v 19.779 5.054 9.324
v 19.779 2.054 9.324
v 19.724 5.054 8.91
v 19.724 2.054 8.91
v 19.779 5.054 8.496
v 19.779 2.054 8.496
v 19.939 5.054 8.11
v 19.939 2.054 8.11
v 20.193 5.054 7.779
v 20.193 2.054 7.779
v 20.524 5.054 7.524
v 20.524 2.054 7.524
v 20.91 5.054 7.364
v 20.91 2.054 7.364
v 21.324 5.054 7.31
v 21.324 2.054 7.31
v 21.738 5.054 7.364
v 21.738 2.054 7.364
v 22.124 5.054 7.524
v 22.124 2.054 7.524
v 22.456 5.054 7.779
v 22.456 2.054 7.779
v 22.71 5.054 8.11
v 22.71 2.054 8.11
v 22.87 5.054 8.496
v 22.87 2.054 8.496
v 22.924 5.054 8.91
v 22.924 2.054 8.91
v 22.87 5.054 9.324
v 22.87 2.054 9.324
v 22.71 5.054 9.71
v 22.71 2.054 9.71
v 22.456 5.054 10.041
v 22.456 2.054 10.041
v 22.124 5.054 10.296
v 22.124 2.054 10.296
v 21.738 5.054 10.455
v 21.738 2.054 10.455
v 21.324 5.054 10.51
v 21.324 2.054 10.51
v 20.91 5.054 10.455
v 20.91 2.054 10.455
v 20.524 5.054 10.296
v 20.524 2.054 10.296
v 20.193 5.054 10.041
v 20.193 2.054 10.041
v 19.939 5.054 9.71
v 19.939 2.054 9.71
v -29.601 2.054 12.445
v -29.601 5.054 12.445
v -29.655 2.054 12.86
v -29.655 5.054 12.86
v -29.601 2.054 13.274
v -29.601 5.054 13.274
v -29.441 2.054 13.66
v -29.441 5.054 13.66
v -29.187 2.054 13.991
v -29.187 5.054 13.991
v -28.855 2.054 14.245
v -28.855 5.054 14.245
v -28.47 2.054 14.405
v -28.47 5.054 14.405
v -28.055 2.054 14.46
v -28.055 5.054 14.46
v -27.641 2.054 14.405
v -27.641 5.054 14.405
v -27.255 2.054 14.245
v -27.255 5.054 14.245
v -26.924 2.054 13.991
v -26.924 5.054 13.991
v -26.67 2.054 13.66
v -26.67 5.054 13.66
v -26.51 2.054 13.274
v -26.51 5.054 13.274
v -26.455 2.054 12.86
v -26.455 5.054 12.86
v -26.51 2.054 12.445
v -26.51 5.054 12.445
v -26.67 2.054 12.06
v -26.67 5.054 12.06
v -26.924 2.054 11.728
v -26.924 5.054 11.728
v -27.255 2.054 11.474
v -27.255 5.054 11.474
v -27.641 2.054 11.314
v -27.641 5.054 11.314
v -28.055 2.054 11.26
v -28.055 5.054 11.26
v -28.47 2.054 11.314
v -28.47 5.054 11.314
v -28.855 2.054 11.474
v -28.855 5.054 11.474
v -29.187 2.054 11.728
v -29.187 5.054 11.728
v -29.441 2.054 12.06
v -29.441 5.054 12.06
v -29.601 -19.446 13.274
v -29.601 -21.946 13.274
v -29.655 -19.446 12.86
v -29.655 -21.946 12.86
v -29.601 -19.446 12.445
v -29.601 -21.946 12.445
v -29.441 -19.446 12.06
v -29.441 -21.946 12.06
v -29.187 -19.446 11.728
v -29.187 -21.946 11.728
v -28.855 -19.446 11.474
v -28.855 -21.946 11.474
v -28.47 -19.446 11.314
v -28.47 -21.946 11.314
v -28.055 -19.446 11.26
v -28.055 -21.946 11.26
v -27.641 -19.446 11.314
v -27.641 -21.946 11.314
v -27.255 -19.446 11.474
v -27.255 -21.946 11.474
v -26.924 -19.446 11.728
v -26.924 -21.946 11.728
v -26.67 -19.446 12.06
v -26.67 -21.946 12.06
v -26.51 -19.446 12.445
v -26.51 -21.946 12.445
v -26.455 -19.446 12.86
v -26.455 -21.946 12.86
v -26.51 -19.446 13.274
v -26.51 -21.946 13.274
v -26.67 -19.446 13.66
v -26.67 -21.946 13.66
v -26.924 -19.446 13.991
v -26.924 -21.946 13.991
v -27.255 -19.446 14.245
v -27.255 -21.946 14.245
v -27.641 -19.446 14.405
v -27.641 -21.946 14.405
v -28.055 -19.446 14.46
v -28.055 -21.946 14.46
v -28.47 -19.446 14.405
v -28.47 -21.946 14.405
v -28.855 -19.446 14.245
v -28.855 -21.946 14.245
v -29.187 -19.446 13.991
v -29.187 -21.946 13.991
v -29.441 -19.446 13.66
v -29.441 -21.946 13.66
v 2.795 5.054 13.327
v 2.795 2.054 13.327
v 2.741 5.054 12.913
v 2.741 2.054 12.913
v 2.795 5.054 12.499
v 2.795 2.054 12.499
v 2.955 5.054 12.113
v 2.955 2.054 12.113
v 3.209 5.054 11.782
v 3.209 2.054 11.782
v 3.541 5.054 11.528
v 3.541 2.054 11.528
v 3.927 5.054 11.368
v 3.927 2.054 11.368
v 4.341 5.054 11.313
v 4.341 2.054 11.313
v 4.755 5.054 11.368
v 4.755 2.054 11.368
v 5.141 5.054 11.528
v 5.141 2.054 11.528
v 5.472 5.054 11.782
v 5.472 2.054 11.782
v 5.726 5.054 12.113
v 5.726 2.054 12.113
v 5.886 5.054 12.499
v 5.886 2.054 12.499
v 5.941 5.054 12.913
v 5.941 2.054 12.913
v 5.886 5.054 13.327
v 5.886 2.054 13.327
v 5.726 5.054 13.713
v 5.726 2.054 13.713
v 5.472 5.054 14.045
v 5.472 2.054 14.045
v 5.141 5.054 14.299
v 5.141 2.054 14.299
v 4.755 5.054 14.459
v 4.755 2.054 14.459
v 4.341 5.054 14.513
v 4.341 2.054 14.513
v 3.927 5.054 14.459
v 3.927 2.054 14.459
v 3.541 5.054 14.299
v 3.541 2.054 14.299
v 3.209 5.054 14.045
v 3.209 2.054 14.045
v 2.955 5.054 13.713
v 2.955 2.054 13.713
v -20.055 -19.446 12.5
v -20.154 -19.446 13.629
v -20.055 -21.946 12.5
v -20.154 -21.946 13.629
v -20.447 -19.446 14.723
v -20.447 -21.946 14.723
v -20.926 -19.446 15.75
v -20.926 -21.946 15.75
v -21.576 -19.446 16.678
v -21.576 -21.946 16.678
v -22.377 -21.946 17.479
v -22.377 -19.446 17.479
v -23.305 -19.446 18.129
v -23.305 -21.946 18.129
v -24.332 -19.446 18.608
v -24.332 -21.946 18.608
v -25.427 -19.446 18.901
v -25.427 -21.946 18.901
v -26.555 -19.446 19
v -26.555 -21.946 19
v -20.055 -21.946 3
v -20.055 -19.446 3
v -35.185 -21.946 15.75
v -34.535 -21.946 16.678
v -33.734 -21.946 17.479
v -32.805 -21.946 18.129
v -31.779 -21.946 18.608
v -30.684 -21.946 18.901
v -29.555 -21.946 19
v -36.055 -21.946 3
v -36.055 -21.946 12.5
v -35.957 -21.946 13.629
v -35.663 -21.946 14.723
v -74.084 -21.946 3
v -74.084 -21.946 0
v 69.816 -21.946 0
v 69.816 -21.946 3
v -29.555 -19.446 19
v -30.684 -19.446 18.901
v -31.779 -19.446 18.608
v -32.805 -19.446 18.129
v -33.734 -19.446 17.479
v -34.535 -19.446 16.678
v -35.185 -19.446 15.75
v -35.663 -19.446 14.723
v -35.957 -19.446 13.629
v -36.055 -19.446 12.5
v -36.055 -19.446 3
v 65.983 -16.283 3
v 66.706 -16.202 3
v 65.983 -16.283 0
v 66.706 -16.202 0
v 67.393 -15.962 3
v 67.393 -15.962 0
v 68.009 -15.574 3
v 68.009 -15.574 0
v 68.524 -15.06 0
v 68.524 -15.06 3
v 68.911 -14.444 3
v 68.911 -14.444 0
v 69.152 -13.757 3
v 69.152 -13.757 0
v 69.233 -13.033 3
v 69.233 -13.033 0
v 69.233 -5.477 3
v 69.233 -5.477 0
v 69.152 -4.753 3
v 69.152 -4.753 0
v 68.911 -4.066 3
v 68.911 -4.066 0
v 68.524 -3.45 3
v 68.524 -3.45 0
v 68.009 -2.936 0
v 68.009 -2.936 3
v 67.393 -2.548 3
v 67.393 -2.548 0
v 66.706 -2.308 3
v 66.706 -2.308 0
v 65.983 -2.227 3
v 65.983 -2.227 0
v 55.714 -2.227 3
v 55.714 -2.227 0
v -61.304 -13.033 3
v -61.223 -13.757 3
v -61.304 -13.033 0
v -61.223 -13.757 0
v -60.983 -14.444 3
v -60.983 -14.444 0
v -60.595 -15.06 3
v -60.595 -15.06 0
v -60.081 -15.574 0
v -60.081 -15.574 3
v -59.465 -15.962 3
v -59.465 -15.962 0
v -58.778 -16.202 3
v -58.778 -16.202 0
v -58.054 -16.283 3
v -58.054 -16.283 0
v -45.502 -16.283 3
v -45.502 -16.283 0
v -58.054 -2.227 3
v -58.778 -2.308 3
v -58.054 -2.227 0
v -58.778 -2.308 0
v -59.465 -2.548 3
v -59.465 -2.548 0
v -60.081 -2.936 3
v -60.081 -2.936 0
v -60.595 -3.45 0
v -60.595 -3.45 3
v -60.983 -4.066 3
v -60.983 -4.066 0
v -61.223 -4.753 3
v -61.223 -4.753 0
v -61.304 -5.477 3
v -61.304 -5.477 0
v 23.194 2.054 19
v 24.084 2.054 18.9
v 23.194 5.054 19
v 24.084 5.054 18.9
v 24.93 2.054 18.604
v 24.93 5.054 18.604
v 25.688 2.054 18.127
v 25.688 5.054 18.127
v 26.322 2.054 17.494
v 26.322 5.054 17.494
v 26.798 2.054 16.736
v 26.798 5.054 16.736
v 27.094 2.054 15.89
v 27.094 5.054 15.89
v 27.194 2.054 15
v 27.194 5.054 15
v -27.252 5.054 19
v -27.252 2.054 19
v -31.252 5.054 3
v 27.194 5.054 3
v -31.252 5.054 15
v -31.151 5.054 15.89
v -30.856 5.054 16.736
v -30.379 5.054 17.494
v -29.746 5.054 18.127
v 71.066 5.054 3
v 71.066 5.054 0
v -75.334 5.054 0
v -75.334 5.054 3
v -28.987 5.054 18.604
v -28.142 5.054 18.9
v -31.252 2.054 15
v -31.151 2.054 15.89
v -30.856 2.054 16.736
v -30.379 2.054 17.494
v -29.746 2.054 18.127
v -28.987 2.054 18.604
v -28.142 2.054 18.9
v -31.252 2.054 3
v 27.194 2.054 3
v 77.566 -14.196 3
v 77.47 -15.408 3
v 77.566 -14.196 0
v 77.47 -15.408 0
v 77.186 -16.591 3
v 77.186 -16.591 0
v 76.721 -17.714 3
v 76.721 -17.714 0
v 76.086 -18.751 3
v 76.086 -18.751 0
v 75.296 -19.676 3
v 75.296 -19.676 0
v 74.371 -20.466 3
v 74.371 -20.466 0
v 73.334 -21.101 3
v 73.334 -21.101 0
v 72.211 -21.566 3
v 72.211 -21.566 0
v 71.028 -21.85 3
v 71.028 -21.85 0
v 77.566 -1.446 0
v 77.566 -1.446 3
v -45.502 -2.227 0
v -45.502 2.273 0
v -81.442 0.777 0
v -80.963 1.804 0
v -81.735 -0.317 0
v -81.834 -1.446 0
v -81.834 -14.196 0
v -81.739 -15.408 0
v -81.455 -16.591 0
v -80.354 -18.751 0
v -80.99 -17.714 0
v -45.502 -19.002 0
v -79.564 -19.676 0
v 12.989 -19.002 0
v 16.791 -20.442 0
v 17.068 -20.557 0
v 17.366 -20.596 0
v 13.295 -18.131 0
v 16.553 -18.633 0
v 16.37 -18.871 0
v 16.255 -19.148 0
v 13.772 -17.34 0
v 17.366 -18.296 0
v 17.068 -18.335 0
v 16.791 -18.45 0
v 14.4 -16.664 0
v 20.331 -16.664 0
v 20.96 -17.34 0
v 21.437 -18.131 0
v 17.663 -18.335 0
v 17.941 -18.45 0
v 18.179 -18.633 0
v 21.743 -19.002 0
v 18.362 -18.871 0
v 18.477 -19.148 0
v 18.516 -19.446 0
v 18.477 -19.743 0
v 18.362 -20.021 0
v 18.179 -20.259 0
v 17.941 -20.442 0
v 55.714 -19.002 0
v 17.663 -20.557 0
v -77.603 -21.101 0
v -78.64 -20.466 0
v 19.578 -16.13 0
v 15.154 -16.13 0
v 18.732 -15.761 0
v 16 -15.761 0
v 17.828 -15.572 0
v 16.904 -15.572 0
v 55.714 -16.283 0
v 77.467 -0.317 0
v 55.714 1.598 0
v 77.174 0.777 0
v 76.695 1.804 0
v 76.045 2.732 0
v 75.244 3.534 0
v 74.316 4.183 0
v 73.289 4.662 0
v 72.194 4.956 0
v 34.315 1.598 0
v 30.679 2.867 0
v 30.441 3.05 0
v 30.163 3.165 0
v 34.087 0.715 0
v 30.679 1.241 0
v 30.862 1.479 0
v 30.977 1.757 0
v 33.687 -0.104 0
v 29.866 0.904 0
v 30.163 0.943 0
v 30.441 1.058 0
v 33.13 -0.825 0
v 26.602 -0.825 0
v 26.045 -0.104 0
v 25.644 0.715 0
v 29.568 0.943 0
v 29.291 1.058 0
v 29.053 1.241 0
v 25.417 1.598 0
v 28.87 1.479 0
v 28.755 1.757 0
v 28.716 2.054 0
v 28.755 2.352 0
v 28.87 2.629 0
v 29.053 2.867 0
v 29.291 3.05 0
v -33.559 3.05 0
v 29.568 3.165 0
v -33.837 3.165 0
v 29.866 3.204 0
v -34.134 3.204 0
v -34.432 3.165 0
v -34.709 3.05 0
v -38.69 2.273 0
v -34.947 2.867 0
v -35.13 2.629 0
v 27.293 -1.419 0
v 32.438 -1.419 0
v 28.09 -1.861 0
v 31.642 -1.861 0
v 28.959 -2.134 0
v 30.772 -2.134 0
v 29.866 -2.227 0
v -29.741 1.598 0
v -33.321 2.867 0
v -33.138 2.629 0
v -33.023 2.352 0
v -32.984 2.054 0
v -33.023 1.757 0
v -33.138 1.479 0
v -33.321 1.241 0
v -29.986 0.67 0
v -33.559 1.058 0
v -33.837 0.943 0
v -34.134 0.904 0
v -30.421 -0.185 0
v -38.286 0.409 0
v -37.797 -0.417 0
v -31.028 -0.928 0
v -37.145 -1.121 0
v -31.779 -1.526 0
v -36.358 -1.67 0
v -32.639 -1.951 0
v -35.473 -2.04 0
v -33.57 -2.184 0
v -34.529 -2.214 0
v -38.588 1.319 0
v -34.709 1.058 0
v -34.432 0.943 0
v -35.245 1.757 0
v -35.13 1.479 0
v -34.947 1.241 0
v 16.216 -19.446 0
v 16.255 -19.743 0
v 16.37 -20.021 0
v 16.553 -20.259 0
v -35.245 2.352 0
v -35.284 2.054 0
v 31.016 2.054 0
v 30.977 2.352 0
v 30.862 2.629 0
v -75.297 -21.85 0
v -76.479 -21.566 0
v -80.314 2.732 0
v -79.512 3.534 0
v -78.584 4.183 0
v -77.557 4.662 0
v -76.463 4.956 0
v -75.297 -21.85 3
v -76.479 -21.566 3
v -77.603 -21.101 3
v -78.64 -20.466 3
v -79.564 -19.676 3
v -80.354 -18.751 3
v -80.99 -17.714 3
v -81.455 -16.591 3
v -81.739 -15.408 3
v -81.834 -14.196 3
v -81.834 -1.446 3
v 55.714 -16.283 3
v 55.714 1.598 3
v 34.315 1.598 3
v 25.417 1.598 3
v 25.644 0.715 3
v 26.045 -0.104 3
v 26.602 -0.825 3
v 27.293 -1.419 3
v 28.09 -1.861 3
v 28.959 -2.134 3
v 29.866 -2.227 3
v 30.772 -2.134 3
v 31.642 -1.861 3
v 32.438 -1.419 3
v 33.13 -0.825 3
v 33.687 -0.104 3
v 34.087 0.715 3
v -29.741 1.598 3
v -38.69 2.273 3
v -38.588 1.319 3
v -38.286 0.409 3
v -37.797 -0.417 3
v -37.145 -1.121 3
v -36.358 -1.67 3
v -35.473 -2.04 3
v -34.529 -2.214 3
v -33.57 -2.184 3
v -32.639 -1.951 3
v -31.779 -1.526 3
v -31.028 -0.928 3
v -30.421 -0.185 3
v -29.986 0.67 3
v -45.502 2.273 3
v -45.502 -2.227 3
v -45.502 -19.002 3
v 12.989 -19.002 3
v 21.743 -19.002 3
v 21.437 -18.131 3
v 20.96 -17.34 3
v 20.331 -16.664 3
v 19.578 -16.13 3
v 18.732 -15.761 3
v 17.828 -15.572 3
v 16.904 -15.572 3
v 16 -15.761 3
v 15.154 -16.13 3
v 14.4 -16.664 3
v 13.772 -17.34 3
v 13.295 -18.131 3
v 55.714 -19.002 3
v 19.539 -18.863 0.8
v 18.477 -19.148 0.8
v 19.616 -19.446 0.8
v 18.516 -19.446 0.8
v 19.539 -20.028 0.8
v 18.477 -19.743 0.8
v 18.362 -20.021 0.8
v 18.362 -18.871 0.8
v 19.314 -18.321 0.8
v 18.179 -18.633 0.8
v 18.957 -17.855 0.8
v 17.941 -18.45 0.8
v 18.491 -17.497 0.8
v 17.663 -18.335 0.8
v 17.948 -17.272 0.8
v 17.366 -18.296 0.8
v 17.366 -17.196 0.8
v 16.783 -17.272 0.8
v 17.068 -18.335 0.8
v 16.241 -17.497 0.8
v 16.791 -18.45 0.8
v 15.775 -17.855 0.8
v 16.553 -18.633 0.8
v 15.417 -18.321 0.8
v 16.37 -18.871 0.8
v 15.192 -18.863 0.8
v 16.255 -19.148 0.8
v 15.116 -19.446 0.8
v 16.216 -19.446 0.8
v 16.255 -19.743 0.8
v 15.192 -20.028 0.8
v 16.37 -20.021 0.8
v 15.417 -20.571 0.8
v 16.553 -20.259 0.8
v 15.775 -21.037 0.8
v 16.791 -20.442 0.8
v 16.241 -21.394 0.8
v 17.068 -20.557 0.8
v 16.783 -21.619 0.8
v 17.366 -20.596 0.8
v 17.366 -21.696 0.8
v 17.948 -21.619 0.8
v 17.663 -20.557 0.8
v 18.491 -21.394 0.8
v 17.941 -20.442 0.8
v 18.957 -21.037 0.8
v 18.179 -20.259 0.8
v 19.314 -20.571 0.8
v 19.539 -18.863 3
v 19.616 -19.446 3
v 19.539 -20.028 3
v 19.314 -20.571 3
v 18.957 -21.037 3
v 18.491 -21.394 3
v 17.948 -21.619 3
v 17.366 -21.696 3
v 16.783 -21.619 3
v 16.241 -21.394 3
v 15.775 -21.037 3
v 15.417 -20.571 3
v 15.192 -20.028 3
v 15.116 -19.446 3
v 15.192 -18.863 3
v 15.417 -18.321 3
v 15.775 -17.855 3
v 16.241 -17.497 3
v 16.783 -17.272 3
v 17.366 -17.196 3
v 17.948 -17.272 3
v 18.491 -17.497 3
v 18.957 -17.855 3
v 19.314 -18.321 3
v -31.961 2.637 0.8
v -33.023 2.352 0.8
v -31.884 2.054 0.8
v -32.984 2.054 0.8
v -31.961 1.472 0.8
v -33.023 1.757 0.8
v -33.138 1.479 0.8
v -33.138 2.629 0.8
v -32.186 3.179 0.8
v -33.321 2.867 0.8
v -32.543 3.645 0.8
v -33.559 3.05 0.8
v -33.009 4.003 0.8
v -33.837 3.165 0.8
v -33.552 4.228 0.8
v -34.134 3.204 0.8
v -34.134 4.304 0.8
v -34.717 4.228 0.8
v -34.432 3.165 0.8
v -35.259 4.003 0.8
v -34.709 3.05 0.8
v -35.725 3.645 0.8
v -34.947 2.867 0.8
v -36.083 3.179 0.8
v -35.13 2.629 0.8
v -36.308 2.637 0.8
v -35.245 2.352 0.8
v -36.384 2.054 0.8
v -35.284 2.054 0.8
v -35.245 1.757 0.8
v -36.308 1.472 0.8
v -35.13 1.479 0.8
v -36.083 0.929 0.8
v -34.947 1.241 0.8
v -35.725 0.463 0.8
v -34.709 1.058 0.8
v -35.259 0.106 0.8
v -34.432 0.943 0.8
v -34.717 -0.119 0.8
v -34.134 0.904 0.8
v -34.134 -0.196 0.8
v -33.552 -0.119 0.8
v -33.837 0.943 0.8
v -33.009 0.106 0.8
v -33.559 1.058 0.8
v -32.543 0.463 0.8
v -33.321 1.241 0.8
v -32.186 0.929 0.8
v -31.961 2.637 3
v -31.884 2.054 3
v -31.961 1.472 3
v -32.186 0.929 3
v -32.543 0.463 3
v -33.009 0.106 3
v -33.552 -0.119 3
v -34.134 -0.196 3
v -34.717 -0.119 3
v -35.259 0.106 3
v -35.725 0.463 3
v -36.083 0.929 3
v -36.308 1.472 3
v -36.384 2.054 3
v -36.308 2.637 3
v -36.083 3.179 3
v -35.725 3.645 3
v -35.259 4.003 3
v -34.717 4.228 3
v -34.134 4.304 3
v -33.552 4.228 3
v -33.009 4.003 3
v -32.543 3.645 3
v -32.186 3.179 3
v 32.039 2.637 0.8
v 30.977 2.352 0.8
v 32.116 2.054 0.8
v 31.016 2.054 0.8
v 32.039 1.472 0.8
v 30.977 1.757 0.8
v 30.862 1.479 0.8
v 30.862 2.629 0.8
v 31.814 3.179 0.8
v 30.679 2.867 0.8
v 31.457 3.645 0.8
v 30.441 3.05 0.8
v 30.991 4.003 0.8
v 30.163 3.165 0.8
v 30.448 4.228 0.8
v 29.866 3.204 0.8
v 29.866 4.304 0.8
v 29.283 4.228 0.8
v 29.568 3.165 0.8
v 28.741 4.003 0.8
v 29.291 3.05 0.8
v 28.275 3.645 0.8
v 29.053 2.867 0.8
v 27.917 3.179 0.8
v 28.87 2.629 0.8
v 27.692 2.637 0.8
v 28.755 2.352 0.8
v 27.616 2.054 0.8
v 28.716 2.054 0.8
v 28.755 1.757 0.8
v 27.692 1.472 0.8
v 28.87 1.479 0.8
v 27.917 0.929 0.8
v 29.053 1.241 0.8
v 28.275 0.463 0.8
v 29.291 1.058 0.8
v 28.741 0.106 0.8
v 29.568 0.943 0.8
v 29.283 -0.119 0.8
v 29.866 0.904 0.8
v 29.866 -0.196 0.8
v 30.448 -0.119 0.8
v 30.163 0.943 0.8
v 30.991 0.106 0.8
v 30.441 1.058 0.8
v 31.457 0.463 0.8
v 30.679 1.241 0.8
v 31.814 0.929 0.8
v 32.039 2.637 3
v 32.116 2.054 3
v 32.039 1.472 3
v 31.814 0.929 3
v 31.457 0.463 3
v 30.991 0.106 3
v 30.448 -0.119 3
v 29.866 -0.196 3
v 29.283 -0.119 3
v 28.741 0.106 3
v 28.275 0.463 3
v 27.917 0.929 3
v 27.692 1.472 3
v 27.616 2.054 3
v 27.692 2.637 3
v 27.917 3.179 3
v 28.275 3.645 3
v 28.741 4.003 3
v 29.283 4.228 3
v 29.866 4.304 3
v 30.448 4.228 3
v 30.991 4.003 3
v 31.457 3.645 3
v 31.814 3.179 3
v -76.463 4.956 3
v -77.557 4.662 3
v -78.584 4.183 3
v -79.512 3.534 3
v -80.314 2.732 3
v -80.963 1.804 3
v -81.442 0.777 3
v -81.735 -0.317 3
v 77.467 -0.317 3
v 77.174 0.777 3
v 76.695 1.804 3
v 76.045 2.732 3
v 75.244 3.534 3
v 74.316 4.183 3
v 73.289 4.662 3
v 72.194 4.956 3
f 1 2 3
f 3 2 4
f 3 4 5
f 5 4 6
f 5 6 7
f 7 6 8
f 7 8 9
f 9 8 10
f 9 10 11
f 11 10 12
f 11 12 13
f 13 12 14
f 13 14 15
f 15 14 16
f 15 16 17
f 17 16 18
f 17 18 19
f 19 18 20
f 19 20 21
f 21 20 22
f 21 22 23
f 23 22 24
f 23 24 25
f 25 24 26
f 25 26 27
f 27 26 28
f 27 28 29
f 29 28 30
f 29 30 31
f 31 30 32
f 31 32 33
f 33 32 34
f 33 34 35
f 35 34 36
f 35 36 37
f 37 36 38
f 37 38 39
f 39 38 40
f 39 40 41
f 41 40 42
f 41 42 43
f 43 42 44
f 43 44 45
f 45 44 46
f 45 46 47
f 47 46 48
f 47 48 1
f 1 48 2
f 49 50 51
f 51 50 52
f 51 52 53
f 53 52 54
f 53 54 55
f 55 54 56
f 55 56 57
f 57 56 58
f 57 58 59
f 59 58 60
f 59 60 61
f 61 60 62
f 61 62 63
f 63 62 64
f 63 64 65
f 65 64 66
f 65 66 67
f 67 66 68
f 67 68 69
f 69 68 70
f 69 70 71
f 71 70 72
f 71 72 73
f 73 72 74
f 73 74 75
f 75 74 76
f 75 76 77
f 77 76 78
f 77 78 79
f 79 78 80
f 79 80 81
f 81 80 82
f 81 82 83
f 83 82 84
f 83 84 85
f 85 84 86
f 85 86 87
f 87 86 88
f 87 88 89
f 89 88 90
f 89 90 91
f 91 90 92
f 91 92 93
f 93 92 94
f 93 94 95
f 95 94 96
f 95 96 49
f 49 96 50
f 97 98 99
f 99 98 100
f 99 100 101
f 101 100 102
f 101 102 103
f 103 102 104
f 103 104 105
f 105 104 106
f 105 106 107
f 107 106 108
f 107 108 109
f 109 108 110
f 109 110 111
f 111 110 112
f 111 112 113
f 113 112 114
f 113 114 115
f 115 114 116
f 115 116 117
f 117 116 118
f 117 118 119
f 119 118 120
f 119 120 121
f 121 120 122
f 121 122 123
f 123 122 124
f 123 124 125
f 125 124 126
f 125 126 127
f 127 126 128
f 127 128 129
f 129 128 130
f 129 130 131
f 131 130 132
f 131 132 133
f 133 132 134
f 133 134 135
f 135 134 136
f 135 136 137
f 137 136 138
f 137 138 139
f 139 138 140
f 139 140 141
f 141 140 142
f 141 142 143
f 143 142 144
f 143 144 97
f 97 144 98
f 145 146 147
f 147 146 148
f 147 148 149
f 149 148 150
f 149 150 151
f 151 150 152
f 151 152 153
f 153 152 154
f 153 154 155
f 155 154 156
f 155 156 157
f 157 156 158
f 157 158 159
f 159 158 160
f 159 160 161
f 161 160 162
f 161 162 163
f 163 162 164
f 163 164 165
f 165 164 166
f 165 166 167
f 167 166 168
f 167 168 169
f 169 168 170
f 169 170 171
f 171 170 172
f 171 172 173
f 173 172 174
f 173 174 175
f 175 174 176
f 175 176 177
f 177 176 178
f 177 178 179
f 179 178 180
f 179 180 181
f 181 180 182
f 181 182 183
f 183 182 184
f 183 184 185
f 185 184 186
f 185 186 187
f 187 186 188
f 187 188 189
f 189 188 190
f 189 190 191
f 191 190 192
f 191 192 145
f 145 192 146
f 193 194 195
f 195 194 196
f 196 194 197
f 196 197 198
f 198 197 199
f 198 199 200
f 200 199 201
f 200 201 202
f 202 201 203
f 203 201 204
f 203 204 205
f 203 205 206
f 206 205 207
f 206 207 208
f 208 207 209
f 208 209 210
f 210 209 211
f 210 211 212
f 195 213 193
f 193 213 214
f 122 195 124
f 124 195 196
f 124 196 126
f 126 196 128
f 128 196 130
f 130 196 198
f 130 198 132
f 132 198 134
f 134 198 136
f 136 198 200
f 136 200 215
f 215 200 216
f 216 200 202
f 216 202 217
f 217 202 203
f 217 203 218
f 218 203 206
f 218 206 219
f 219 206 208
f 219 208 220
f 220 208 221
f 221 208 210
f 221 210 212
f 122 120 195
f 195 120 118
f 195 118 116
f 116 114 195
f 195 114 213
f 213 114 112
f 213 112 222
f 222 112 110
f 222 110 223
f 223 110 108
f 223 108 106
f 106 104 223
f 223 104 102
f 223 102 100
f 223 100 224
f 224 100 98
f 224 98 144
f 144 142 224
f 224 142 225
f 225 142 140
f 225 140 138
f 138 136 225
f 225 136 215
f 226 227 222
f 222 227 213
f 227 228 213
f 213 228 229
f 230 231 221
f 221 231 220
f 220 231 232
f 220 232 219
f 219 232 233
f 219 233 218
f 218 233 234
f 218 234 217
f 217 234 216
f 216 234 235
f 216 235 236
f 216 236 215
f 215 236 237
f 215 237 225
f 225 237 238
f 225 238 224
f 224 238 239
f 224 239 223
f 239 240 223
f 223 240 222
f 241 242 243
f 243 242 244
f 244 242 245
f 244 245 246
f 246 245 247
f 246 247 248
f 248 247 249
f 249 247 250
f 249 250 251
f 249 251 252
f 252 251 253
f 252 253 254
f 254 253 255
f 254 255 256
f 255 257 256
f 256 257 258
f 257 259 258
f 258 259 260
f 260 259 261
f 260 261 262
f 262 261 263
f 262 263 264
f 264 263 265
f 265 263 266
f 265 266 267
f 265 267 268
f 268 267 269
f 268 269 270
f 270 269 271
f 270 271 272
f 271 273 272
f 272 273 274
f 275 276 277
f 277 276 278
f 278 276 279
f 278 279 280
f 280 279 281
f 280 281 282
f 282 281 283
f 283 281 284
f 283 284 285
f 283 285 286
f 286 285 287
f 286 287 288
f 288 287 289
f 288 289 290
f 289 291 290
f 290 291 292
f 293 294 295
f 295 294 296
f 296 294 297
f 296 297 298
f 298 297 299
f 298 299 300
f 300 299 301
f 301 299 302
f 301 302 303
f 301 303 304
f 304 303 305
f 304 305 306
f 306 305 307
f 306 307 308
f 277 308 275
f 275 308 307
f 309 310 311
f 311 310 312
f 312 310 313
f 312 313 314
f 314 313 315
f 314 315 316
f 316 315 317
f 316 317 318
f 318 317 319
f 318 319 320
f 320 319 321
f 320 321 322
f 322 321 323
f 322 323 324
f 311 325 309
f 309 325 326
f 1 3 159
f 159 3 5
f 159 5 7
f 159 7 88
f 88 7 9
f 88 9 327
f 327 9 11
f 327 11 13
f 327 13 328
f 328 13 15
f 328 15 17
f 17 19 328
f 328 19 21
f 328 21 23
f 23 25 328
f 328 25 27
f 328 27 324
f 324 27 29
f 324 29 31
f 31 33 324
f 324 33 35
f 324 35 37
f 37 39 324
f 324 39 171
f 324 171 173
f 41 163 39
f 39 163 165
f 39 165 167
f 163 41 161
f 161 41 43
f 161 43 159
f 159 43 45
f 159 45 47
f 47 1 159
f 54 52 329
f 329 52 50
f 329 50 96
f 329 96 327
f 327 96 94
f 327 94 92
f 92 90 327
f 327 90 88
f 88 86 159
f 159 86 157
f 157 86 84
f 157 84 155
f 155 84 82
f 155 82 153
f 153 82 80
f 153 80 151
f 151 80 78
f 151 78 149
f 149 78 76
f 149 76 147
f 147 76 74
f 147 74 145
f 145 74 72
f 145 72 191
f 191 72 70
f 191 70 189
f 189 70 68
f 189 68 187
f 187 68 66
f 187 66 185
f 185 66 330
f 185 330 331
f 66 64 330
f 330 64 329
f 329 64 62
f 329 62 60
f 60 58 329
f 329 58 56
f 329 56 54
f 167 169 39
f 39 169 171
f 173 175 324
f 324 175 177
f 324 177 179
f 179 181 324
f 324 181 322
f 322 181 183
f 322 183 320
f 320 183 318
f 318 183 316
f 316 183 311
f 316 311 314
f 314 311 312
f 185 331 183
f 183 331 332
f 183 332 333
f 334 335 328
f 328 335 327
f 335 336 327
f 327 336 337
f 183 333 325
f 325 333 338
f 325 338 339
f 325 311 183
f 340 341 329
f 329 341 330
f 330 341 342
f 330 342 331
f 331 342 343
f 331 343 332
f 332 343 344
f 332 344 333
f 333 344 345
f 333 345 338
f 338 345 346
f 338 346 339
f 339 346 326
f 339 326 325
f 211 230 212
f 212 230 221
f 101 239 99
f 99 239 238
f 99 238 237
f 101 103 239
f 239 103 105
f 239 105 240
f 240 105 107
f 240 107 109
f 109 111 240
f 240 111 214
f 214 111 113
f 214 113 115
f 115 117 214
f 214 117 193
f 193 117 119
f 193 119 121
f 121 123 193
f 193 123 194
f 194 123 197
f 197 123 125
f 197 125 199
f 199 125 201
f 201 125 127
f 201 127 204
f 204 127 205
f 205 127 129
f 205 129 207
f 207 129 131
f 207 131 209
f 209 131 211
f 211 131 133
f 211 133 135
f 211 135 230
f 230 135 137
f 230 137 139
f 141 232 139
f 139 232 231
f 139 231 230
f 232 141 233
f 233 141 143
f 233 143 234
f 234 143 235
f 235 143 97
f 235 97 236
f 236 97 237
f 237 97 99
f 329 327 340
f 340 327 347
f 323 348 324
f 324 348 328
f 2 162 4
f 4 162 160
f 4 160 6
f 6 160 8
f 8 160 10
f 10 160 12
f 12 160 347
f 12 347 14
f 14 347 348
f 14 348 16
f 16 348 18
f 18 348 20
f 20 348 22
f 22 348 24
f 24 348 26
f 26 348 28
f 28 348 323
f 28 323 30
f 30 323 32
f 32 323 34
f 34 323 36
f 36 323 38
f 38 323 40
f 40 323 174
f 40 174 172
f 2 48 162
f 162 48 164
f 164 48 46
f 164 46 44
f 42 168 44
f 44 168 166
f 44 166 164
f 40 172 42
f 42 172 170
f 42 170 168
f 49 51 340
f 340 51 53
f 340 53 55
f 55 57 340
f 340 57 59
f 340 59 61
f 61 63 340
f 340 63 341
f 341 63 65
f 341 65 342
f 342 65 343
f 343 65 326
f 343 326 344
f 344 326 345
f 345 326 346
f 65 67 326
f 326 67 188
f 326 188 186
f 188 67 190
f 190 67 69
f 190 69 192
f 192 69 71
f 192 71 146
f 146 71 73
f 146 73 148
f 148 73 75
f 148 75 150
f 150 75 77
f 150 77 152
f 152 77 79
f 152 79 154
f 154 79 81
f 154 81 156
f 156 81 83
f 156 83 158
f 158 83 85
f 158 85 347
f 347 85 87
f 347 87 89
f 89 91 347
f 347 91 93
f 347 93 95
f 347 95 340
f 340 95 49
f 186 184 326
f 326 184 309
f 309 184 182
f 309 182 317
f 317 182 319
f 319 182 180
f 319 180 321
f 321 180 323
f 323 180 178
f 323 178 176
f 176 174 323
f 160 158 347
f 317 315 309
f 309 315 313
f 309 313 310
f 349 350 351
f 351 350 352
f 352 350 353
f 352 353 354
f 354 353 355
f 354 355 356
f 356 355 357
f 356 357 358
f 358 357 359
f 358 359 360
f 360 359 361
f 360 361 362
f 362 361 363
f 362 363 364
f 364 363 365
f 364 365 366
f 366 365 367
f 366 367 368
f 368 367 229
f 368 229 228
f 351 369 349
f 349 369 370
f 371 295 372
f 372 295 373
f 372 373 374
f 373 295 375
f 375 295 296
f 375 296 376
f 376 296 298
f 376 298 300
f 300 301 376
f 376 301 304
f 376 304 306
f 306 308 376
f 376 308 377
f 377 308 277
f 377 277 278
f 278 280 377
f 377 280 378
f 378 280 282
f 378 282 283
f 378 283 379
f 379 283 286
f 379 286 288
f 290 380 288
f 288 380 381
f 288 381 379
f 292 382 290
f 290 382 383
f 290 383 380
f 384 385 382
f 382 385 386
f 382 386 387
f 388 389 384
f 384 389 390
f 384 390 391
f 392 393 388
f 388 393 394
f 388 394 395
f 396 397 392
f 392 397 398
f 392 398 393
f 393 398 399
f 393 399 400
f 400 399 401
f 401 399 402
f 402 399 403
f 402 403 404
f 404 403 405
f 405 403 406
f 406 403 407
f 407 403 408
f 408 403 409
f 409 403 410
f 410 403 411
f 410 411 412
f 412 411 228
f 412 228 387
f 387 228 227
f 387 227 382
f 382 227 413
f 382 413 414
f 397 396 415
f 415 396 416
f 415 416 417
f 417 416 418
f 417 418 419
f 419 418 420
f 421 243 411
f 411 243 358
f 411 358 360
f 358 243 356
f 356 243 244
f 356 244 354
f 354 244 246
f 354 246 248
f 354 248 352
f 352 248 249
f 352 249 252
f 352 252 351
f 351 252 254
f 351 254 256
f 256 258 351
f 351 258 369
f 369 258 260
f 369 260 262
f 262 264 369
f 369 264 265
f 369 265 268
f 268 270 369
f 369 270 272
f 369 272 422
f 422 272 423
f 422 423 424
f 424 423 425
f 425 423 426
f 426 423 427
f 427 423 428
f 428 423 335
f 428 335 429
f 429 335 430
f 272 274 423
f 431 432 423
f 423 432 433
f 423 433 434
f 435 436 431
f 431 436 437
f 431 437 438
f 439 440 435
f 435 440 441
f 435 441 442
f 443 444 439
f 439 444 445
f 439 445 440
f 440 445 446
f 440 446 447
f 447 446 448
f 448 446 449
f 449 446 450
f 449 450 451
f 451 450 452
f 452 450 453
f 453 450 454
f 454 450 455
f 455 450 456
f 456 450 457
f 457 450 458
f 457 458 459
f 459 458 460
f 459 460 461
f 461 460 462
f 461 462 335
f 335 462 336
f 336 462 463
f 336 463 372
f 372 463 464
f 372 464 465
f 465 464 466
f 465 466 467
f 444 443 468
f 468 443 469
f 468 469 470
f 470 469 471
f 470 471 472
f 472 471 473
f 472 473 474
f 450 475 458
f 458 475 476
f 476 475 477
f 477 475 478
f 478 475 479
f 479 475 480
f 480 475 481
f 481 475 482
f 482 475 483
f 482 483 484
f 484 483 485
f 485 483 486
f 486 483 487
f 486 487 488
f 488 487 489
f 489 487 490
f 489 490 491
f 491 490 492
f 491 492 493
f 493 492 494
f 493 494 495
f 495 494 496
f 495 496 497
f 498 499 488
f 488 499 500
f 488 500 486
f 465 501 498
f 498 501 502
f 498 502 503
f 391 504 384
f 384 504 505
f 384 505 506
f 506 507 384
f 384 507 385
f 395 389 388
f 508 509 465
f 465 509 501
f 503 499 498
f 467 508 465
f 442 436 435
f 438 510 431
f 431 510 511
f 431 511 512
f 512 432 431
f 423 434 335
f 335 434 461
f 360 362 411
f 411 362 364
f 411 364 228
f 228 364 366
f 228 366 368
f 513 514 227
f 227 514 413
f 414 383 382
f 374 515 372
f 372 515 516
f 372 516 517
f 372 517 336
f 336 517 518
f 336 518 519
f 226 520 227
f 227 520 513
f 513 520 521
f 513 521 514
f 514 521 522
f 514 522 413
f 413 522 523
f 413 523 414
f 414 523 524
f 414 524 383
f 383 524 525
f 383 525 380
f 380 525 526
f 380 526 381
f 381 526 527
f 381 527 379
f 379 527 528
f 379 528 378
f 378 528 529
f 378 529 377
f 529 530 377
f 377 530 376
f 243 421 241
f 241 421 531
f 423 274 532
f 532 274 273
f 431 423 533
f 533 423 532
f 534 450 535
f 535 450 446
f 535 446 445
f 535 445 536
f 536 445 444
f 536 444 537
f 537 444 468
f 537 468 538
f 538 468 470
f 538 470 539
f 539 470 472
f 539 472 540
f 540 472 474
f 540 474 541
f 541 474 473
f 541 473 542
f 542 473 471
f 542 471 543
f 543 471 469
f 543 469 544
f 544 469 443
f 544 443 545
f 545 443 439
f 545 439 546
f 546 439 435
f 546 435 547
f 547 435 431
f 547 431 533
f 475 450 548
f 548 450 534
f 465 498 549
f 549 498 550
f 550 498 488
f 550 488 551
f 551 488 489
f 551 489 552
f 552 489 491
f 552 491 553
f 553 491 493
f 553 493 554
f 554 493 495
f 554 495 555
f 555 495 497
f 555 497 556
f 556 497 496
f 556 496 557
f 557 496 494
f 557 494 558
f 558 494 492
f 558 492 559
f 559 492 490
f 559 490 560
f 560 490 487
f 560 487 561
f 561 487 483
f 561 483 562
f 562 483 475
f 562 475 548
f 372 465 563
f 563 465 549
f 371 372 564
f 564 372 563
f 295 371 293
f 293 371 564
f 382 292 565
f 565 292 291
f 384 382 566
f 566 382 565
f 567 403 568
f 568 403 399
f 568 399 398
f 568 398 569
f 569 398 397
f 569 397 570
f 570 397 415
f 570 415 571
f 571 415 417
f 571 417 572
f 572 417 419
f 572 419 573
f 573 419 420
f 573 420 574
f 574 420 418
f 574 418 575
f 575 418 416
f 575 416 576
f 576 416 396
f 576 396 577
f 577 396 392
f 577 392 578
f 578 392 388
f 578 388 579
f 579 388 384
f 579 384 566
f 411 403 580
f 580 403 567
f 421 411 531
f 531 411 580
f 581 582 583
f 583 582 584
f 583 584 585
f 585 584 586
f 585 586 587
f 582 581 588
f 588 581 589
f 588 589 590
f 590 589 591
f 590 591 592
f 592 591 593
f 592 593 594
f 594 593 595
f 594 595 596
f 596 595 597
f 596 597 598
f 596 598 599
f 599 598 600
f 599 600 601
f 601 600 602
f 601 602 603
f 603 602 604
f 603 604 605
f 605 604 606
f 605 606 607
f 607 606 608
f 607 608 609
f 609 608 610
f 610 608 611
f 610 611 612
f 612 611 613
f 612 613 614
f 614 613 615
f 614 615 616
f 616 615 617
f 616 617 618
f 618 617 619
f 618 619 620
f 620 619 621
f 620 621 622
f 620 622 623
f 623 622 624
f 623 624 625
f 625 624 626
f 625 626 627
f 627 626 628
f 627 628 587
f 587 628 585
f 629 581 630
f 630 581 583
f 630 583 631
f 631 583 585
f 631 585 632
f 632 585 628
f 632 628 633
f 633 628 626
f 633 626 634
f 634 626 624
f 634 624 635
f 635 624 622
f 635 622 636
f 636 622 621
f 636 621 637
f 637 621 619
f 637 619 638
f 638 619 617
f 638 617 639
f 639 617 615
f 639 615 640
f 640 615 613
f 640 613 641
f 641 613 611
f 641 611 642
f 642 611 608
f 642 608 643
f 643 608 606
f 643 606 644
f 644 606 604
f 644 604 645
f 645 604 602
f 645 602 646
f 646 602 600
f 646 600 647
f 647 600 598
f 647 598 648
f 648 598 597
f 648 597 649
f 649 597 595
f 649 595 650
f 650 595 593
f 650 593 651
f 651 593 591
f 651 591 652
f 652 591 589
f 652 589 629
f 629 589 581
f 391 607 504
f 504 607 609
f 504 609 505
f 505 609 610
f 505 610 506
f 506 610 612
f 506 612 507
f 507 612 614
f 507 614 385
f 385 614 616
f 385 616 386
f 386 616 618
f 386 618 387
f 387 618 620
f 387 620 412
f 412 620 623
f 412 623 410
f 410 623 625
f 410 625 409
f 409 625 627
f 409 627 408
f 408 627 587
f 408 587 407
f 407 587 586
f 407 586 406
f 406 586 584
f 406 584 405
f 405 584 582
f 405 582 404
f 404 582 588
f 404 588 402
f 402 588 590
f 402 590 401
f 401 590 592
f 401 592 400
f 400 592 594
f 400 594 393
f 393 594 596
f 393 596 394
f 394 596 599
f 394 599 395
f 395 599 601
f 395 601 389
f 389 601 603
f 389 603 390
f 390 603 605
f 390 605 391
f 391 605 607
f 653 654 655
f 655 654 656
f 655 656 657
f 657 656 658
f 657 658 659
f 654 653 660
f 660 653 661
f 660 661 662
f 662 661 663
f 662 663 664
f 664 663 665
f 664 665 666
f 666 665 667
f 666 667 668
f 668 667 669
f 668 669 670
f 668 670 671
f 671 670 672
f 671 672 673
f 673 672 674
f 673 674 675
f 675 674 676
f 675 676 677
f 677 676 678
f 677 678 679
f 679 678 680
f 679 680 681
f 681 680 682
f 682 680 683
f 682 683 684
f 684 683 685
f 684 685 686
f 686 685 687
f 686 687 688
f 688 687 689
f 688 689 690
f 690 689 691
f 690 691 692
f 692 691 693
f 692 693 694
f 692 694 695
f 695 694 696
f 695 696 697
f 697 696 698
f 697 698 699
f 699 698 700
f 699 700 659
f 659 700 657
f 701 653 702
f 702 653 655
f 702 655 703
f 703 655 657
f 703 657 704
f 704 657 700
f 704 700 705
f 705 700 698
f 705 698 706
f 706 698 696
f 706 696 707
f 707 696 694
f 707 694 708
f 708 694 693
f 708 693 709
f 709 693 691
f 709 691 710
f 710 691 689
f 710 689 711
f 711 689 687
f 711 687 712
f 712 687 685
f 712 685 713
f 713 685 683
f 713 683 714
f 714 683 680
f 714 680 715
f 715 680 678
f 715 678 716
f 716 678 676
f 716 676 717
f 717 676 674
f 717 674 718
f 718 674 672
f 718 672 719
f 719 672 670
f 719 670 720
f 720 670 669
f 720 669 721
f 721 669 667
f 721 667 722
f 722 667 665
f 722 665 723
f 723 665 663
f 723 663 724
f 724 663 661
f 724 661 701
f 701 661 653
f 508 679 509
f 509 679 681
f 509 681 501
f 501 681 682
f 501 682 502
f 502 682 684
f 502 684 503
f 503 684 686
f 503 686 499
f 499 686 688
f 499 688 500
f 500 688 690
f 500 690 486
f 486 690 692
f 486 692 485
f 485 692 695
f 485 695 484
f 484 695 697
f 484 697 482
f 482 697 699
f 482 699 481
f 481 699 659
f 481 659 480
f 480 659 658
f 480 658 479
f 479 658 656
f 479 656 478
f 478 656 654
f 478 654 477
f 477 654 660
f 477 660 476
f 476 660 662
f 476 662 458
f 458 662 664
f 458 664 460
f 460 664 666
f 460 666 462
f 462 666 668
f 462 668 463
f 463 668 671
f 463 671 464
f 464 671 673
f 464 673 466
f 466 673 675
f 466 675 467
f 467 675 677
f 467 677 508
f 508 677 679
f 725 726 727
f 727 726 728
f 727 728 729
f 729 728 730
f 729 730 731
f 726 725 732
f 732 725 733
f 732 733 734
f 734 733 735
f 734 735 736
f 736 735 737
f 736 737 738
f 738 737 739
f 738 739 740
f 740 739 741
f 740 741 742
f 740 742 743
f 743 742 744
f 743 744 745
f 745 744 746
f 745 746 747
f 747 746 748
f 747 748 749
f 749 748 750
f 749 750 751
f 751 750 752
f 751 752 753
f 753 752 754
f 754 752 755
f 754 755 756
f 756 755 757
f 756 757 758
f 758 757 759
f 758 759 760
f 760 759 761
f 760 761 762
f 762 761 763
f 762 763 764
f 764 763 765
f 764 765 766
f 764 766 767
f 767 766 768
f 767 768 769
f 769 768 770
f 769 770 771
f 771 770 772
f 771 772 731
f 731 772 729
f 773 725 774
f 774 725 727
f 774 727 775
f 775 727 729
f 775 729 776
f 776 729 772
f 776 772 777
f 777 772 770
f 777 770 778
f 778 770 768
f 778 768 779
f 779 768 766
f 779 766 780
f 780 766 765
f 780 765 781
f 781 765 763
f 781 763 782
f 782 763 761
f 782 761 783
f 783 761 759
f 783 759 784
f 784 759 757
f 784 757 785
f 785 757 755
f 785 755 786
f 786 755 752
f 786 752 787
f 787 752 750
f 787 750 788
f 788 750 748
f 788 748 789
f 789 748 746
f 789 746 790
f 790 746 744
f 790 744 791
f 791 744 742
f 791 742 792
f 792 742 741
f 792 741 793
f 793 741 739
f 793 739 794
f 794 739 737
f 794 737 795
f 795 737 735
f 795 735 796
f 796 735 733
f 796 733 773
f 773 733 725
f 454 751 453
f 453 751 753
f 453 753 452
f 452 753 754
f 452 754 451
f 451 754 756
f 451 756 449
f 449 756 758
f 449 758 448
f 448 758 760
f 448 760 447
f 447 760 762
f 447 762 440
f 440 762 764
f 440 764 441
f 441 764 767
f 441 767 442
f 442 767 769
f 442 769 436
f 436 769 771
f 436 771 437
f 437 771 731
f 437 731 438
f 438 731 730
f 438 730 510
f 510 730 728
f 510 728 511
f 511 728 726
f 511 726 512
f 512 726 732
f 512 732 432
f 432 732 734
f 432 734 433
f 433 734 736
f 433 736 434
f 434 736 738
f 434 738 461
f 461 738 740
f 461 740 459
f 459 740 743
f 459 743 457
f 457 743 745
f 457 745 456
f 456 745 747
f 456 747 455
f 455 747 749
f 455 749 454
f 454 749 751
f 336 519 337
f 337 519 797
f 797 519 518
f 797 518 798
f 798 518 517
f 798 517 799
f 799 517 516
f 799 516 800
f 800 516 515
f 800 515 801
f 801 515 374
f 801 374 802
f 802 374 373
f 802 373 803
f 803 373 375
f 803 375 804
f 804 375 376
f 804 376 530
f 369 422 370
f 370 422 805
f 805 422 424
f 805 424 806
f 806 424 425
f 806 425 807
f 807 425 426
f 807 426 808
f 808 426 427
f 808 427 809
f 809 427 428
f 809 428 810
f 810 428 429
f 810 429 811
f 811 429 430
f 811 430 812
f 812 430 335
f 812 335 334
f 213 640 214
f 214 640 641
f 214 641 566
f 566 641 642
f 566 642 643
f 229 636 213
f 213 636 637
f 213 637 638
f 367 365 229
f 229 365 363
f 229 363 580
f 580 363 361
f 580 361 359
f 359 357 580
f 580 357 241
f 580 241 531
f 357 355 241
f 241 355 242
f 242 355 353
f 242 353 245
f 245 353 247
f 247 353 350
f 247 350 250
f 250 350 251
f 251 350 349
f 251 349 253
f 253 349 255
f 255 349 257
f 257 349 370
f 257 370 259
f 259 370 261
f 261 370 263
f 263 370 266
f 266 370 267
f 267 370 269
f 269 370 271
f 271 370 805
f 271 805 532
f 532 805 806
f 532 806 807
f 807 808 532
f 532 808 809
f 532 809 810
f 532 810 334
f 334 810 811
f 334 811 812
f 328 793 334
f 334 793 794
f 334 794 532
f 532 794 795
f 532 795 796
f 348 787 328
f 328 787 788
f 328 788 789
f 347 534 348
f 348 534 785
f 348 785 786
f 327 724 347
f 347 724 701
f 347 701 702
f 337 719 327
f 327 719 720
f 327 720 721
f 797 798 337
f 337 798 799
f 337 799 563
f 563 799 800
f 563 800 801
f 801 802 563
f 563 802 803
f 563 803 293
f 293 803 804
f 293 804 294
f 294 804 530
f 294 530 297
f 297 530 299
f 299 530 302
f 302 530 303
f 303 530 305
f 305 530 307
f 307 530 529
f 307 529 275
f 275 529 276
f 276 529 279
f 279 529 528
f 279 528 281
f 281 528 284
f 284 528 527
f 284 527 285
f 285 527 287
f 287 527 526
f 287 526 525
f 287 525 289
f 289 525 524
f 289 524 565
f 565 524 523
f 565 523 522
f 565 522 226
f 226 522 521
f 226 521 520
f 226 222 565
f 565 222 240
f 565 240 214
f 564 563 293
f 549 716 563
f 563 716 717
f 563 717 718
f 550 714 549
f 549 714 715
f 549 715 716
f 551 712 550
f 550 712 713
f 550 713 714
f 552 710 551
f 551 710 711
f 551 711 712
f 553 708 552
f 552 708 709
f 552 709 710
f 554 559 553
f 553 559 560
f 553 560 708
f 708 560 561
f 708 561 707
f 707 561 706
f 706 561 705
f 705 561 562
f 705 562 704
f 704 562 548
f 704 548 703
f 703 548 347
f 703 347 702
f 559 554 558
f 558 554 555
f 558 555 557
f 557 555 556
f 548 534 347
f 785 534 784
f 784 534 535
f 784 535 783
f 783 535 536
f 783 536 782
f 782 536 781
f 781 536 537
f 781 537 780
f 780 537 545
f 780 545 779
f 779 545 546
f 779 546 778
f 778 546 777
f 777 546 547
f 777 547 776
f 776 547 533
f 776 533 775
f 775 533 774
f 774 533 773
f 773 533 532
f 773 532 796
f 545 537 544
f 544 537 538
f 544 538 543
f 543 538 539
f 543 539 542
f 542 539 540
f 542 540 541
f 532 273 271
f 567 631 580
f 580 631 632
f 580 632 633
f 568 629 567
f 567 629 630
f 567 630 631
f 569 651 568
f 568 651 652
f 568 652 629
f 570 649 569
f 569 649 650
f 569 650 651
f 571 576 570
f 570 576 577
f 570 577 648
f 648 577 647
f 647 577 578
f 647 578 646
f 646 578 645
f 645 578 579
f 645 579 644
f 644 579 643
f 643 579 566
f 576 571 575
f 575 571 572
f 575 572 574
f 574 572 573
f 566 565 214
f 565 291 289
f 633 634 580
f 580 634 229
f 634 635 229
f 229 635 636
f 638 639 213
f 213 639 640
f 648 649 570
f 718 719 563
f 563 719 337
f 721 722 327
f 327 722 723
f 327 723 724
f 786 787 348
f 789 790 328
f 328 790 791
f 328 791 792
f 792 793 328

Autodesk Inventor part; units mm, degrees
ref_plane "YZ Plane" through (0, 0, 0) normal (1, 0, 0) x (0, 1, 0)
ref_plane "XZ Plane" through (0, 0, 0) normal (0, 1, 0) x (-1, 0, 0)
ref_plane "XY Plane" through (0, 0, 0) normal (0, 0, 1) x (1, 0, 0)
sketch "Sketch1" plane through (0, 0, 0) normal (0, 0, 1) x (1, 0, 0)
  circle A0 centre (29.8658, 2.0543) radius 1.1 construction
  circle A1 centre (-34.1342, 2.0543) radius 1.1 construction
  circle A2 centre (17.3658, -19.4457) radius 1.1 construction
  arc A3 (77.5658, -1.4457) -> (71.0658, 5.0543) centre (71.0658, -1.4457) ccw construction
  line L0 (-75.3342, 5.0543) -> (71.0658, 5.0543) construction
  arc A4 (-75.3342, 5.0543) -> (-81.8342, -1.4457) centre (-75.3342, -1.4457) ccw construction
  line L1 (-81.8342, -3.2457) -> (-81.8342, -1.4457) construction
  arc A5 (-81.8342, -3.2457) -> (-77.5665, -5.0135) centre (-79.3342, -3.2457) ccw construction
  line L2 (-75.4025, -2.8495) -> (-77.5665, -5.0135) construction
  arc A6 (-70.8063, -0.9457) -> (-75.4025, -2.8495) centre (-70.8063, -7.4457) ccw construction
  line L3 (7.8658, -0.9457) -> (-70.8063, -0.9457) construction
  arc A7 (14.3658, -7.4457) -> (7.8658, -0.9457) centre (7.8658, -7.4457) ccw construction
  line L4 (14.3658, -14.9457) -> (14.3658, -7.4457) construction
  line L5 (14.3658, -21.9457) -> (14.3658, -14.9457) construction
  line L6 (20.3658, -21.9457) -> (14.3658, -21.9457) construction
  line L7 (20.3658, -14.9457) -> (20.3658, -21.9457) construction
  line L8 (20.3658, -7.4457) -> (20.3658, -14.9457) construction
  arc A8 (26.8658, -0.9457) -> (20.3658, -7.4457) centre (26.8658, -7.4457) ccw construction
  line L9 (67.2302, -0.9457) -> (26.8658, -0.9457) construction
  arc A9 (69.7302, -1.4457) -> (67.2302, -0.9457) centre (67.2302, -7.4457) ccw construction
  line L10 (73.298, -5.0135) -> (69.7302, -1.4457) construction
  arc A10 (73.298, -5.0135) -> (77.5658, -3.2457) centre (75.0658, -3.2457) ccw construction
  line L11 (77.5658, -1.4457) -> (77.5658, -3.2457) construction
  circle A11 centre (17.3658, -15.6457) radius 0.75 construction
  circle A12 centre (-79.3342, -3.2457) radius 0.75 construction
  circle A13 centre (75.0658, -3.2457) radius 0.75 construction
  circle A14 centre (17.3658, -3.2457) radius 0.75 construction
  line L12 (-75.3342, 5.0543) -> (71.0658, 5.0543)
  line L13 (77.5658, -1.4457) -> (77.5658, -21.9457)
  line L14 (77.5658, -21.9457) -> (-81.8342, -21.9457)
  line L15 (-81.8342, -21.9457) -> (-81.8342, -1.4457)
  arc A15 (-75.3342, 5.0543) -> (-81.8342, -1.4457) centre (-75.3342, -1.4457) ccw projected
  arc A16 (77.5658, -1.4457) -> (71.0658, 5.0543) centre (71.0658, -1.4457) ccw projected
  point P0 (0, 0)
extrude "Extrusion1" add sketch "Sketch1" along normal blind 3
sketch "Sketch2" plane through (0, 0, 3) normal (0, 0, 1) x (1, 0, 0)
  circle A0 centre (29.8658, 2.0543) radius 1.1 projected
  circle A1 centre (-34.1342, 2.0543) radius 1.1 projected
  circle A2 centre (17.3658, -19.4457) radius 1.1 projected
  point P0 (0, 0)
hole "Hole1" at (-34.1342, 2.0543, 3) at (17.3658, -19.4457, 3) at (29.8658, 2.0543, 3) direction (0, 0, -1) diameter 2.3 end through all counterbore diameter 4.5 counterbore depth 2.2
sketch "Sketch3" plane through (0, 0, 3) normal (0, 0, 1) x (1, 0, 0)
  line L0 (69.2331, -2.2265) -> (69.2331, -16.2835)
  line L1 (-61.3045, -16.2835) -> (-61.3045, -2.2265)
  circle A0 centre (-34.1342, 2.0543) radius 2.25 construction
  circle A1 centre (-34.1342, 2.0543) radius 1.15 construction
  circle A2 centre (29.8658, 2.0543) radius 2.25 construction
  circle A3 centre (29.8658, 2.0543) radius 1.15 construction
  circle A4 centre (17.3658, -19.4457) radius 2.25 construction
  circle A5 centre (17.3658, -19.4457) radius 1.15 construction
  arc A6 (-38.6902, 2.2735) -> (-29.7413, 1.5975) centre (-34.1902, 2.2735) ccw
  line L2 (-45.5022, 2.2735) -> (-38.6902, 2.2735)
  line L3 (-29.7413, 1.5975) -> (25.4168, 1.5975)
  line L4 (34.3147, 1.5975) -> (55.7139, 1.5975)
  arc A7 (25.4168, 1.5975) -> (34.3147, 1.5975) centre (29.8658, 2.2735) ccw
  line L5 (55.7139, -19.0025) -> (21.7425, -19.0025)
  line L6 (12.989, -19.0025) -> (-45.5022, -19.0025)
  arc A8 (21.7425, -19.0025) -> (12.989, -19.0025) centre (17.3658, -20.0483) ccw
  line L7 (-53.8342, -3.5957) -> (-53.8342, -15.2957) projected
  line L8 (-56.8342, -15.2957) -> (-56.8342, -3.5957) projected
  line L9 (-53.8342, -15.2957) -> (-56.8342, -15.2957) projected
  line L10 (-56.8342, -3.5957) -> (-53.8342, -3.5957) projected
  line L11 (63.8658, -15.5457) -> (63.8658, -3.3457) projected
  line L12 (66.6658, -3.3457) -> (66.6658, -15.5457) projected
  line L13 (66.6658, -15.5457) -> (63.8658, -15.5457) projected
  line L14 (63.8658, -3.3457) -> (66.6658, -3.3457) projected
  line L15 (-45.5022, 2.2735) -> (-45.5022, -2.2265)
  line L16 (-45.5022, -2.2265) -> (-61.3045, -2.2265)
  line L17 (-45.5022, -16.2835) -> (-45.5022, -19.0025)
  line L18 (-45.5022, -16.2835) -> (-61.3045, -16.2835)
  line L19 (55.7139, 1.5975) -> (55.7139, -2.2265)
  line L20 (55.7139, -2.2265) -> (69.2331, -2.2265)
  line L21 (55.7139, -19.0025) -> (55.7139, -16.2835)
  line L22 (55.7139, -16.2835) -> (69.2331, -16.2835)
  point P0 (0, 0)
  dimension "d9" = 4.5
  dimension "d10" = 4.5
  dimension "d11" = 4.5
  dimension "d15" = 20.6
extrude "Extrusion2" cut sketch "Sketch3" against normal through all contours L0 L22 L21 L5 A8 L6 L17 L18 L1 L16 L15 L2 A6 L3 A7 L4 L19 L20 | L7 L9 L8 L10 | L11 L14 L12 L13
fillet "Fillet1" radius 7.75 2 edges at (-81.8342, -21.9457, 1.5) (77.5658, -21.9457, 1.5)
sketch "Sketch4" plane through (-75.3342, 5.0543, 0) normal (0, 1, 0) x (1, 0, 0)
  line L0 (44.0825, -3) -> (102.5284, -3)
  line L1 (102.5284, -3) -> (102.5284, -19)
  line L2 (102.5284, -19) -> (44.0825, -19)
  line L3 (44.0825, -19) -> (44.0825, -3)
  line L4 (146.4, -3) -> (0, -3) projected
  point P0 (75.3342, 0)
  dimension "d16" = 16
extrude "Extrusion3" add sketch "Sketch4" against normal blind 3
sketch "Sketch5" plane through (-74.0842, -21.9457, 0) normal (0, -1, 0) x (1, 0, 0)
  line L0 (143.9, 3) -> (143.9, 0) projected
  line L1 (0, 3) -> (143.9, 3) projected
  line L2 (0, 0) -> (0, 3) projected
  line L3 (0, 0) -> (143.9, 0) projected
  line L4 (0, 3) -> (143.9, 3) projected
  line L5 (101.2784, 19) -> (42.8325, 19) projected
  line L6 (38.0287, 3) -> (54.0287, 3)
  line L7 (54.0287, 3) -> (54.0287, 19)
  line L8 (54.0287, 19) -> (38.0287, 19)
  line L9 (38.0287, 19) -> (38.0287, 3)
  point P0 (74.0842, 0)
  point P1 (89.4899, 23)
  point P2 (57.4899, 23)
  dimension "d25" = 16
extrude "Extrusion4" add sketch "Sketch5" against normal blind 2.5 contours L1 L9 L8 L5 L7
fillet "Fillet3" radius 4 2 edges at (-31.2517, 3.5543, 19) (27.1942, 3.5543, 19)
fillet "Fillet4" radius 3.25 4 edges at (-61.3045, -2.2265, 1.5) (-61.3045, -16.2835, 1.5) (69.2331, -2.2265, 1.5) (69.2331, -16.2835, 1.5)
fillet "Fillet5" radius 6.5 2 edges at (-36.0555, -20.6957, 19) (-20.0555, -20.6957, 19)
sketch "Sketch7" plane through (-74.0842, -21.9457, 0) normal (0, -1, 0) x (1, 0, 0)
  point P0 (74.0842, 0)
  point P1 (46.0287, 12.8596)
  point P2 (95.4084, 8.91)
  point P3 (78.425, 12.9132)
hole "Hole2" at (-28.0555, -21.9457, 12.8596) at (21.3241, -21.9457, 8.91) at (4.3407, -21.9457, 12.9132) direction (0, 1, 0) diameter 3.2 end through all
properties part number "xtion_custom_heatsink_mount" material "PC/ABS Plastic"
